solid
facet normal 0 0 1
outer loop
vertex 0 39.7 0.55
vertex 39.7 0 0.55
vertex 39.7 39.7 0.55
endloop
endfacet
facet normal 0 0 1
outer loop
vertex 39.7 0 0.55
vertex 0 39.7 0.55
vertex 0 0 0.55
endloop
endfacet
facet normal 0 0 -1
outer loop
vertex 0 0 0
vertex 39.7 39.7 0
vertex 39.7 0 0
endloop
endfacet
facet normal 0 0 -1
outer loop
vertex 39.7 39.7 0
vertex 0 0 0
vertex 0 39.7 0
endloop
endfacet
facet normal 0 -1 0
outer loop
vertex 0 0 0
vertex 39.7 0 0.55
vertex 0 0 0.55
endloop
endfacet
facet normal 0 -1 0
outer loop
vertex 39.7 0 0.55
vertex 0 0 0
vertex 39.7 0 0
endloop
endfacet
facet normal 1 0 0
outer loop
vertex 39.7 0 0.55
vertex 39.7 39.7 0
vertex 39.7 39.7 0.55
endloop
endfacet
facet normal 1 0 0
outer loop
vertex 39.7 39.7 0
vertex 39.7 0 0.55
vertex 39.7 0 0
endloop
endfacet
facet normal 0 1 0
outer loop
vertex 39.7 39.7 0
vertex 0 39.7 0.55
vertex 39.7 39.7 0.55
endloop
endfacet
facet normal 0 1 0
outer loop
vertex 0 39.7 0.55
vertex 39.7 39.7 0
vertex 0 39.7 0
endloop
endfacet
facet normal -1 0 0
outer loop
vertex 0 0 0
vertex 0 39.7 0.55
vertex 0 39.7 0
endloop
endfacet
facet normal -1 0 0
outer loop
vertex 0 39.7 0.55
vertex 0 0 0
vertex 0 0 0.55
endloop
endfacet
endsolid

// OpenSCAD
// file: common.scad
// OpenRook: shared dimensions for every printed part. Change a number here and re-run
// ../render.sh. Keep SQUARE in step with DEFAULT_SQUARE_MM in firmware/OpenRook/config.h.

$fn = 64;

// ---------------------------------------------------------------- board
SQUARE = 40;            // square pitch (mm)
TILE_SQUARES = 4;       // a playing tile is 4x4 squares; four tiles make the board
TILE_T = 3.4;           // tile thickness
INLAY_D = 0.6;          // dark-square recess depth for a second colour (0 = flat tile)
REED_L = 15;            // reed switch glass length (2x14 mm glass + margin)
REED_W = 2.6;           // groove width for glass body
GROOVE_D = 2.2;         // depth of wire/switch grooves on the tile underside
WIRE_W = 1.6;           // groove width for legs and wires
DIODE_L = 4.5;          // 1N4148 body (DO-35)
DIODE_W = 2.2;

// ---------------------------------------------------------------- pieces
PIECE_BASE = 20;        // base diameter: must stay <= SQUARE/2 so pieces pass between others
PIECE_MAG_D = 10.3;     // pocket for a 10x3 mm N52 disc magnet (+ clearance)
PIECE_MAG_H = 3.2;
FELT = 0;               // stick 0.5-1 mm felt under each piece; no geometry needed

// ---------------------------------------------------------------- hardware
EXTRUSION = 20;         // 2020 aluminium profile
M5 = 5.4;               // M5 clearance
M3 = 3.3;               // M3 clearance
M3_NUT = 6.4;           // across flats + clearance
ROD = 8;                // smooth rods
ROD_FIT = 8.15;
LM8UU_D = 15.2;
LM8UU_L = 24;
F623_D = 10.4;          // F623ZZ flanged bearing: 10 mm OD, 4 mm wide, 11.5 mm flange
F623_W = 4;
F623_FLANGE = 11.6;
NEMA = 42.3;
NEMA_HOLES = 31;
NEMA_BOSS = 22.5;
BELT_W = 6;             // GT2 6 mm
SERVO_W = 12.6;         // SG90 / MG90S body
SERVO_L = 23.2;
SERVO_TAB = 32.5;       // tab-to-tab length
CARRIAGE_MAG_D = 15.3;  // 15x4 mm N52 magnet on the lifting arm
CARRIAGE_MAG_H = 4.2;

// ---------------------------------------------------------------- frame
// Inside the frame: magnet travel 425 x 335 mm plus the gantry around it.
FRAME_X = 560;          // outer size of the 2020 rectangle (front/back extrusions)
FRAME_Y = 480;          // outer size (side extrusions are FRAME_Y - 40 long)
ROD_SPACING_X = 40;     // the two X rods, centre to centre

module rounded_box(size, r = 2) {
  hull() for (x = [r, size[0] - r], y = [r, size[1] - r]) translate([x, y, 0]) cylinder(r = r, h = size[2]);
}

module m3_nut_trap(h = 3) { cylinder(d = M3_NUT / cos(30), h = h, $fn = 6); }
// main file
// Optional: a dark square to press into the tile's recess (print 32 in a dark colour), for
// single-colour printers. Skip it if you swap filament at the recess height instead.
include <common.scad>
cube([SQUARE - 0.3, SQUARE - 0.3, INLAY_D - 0.05]);
